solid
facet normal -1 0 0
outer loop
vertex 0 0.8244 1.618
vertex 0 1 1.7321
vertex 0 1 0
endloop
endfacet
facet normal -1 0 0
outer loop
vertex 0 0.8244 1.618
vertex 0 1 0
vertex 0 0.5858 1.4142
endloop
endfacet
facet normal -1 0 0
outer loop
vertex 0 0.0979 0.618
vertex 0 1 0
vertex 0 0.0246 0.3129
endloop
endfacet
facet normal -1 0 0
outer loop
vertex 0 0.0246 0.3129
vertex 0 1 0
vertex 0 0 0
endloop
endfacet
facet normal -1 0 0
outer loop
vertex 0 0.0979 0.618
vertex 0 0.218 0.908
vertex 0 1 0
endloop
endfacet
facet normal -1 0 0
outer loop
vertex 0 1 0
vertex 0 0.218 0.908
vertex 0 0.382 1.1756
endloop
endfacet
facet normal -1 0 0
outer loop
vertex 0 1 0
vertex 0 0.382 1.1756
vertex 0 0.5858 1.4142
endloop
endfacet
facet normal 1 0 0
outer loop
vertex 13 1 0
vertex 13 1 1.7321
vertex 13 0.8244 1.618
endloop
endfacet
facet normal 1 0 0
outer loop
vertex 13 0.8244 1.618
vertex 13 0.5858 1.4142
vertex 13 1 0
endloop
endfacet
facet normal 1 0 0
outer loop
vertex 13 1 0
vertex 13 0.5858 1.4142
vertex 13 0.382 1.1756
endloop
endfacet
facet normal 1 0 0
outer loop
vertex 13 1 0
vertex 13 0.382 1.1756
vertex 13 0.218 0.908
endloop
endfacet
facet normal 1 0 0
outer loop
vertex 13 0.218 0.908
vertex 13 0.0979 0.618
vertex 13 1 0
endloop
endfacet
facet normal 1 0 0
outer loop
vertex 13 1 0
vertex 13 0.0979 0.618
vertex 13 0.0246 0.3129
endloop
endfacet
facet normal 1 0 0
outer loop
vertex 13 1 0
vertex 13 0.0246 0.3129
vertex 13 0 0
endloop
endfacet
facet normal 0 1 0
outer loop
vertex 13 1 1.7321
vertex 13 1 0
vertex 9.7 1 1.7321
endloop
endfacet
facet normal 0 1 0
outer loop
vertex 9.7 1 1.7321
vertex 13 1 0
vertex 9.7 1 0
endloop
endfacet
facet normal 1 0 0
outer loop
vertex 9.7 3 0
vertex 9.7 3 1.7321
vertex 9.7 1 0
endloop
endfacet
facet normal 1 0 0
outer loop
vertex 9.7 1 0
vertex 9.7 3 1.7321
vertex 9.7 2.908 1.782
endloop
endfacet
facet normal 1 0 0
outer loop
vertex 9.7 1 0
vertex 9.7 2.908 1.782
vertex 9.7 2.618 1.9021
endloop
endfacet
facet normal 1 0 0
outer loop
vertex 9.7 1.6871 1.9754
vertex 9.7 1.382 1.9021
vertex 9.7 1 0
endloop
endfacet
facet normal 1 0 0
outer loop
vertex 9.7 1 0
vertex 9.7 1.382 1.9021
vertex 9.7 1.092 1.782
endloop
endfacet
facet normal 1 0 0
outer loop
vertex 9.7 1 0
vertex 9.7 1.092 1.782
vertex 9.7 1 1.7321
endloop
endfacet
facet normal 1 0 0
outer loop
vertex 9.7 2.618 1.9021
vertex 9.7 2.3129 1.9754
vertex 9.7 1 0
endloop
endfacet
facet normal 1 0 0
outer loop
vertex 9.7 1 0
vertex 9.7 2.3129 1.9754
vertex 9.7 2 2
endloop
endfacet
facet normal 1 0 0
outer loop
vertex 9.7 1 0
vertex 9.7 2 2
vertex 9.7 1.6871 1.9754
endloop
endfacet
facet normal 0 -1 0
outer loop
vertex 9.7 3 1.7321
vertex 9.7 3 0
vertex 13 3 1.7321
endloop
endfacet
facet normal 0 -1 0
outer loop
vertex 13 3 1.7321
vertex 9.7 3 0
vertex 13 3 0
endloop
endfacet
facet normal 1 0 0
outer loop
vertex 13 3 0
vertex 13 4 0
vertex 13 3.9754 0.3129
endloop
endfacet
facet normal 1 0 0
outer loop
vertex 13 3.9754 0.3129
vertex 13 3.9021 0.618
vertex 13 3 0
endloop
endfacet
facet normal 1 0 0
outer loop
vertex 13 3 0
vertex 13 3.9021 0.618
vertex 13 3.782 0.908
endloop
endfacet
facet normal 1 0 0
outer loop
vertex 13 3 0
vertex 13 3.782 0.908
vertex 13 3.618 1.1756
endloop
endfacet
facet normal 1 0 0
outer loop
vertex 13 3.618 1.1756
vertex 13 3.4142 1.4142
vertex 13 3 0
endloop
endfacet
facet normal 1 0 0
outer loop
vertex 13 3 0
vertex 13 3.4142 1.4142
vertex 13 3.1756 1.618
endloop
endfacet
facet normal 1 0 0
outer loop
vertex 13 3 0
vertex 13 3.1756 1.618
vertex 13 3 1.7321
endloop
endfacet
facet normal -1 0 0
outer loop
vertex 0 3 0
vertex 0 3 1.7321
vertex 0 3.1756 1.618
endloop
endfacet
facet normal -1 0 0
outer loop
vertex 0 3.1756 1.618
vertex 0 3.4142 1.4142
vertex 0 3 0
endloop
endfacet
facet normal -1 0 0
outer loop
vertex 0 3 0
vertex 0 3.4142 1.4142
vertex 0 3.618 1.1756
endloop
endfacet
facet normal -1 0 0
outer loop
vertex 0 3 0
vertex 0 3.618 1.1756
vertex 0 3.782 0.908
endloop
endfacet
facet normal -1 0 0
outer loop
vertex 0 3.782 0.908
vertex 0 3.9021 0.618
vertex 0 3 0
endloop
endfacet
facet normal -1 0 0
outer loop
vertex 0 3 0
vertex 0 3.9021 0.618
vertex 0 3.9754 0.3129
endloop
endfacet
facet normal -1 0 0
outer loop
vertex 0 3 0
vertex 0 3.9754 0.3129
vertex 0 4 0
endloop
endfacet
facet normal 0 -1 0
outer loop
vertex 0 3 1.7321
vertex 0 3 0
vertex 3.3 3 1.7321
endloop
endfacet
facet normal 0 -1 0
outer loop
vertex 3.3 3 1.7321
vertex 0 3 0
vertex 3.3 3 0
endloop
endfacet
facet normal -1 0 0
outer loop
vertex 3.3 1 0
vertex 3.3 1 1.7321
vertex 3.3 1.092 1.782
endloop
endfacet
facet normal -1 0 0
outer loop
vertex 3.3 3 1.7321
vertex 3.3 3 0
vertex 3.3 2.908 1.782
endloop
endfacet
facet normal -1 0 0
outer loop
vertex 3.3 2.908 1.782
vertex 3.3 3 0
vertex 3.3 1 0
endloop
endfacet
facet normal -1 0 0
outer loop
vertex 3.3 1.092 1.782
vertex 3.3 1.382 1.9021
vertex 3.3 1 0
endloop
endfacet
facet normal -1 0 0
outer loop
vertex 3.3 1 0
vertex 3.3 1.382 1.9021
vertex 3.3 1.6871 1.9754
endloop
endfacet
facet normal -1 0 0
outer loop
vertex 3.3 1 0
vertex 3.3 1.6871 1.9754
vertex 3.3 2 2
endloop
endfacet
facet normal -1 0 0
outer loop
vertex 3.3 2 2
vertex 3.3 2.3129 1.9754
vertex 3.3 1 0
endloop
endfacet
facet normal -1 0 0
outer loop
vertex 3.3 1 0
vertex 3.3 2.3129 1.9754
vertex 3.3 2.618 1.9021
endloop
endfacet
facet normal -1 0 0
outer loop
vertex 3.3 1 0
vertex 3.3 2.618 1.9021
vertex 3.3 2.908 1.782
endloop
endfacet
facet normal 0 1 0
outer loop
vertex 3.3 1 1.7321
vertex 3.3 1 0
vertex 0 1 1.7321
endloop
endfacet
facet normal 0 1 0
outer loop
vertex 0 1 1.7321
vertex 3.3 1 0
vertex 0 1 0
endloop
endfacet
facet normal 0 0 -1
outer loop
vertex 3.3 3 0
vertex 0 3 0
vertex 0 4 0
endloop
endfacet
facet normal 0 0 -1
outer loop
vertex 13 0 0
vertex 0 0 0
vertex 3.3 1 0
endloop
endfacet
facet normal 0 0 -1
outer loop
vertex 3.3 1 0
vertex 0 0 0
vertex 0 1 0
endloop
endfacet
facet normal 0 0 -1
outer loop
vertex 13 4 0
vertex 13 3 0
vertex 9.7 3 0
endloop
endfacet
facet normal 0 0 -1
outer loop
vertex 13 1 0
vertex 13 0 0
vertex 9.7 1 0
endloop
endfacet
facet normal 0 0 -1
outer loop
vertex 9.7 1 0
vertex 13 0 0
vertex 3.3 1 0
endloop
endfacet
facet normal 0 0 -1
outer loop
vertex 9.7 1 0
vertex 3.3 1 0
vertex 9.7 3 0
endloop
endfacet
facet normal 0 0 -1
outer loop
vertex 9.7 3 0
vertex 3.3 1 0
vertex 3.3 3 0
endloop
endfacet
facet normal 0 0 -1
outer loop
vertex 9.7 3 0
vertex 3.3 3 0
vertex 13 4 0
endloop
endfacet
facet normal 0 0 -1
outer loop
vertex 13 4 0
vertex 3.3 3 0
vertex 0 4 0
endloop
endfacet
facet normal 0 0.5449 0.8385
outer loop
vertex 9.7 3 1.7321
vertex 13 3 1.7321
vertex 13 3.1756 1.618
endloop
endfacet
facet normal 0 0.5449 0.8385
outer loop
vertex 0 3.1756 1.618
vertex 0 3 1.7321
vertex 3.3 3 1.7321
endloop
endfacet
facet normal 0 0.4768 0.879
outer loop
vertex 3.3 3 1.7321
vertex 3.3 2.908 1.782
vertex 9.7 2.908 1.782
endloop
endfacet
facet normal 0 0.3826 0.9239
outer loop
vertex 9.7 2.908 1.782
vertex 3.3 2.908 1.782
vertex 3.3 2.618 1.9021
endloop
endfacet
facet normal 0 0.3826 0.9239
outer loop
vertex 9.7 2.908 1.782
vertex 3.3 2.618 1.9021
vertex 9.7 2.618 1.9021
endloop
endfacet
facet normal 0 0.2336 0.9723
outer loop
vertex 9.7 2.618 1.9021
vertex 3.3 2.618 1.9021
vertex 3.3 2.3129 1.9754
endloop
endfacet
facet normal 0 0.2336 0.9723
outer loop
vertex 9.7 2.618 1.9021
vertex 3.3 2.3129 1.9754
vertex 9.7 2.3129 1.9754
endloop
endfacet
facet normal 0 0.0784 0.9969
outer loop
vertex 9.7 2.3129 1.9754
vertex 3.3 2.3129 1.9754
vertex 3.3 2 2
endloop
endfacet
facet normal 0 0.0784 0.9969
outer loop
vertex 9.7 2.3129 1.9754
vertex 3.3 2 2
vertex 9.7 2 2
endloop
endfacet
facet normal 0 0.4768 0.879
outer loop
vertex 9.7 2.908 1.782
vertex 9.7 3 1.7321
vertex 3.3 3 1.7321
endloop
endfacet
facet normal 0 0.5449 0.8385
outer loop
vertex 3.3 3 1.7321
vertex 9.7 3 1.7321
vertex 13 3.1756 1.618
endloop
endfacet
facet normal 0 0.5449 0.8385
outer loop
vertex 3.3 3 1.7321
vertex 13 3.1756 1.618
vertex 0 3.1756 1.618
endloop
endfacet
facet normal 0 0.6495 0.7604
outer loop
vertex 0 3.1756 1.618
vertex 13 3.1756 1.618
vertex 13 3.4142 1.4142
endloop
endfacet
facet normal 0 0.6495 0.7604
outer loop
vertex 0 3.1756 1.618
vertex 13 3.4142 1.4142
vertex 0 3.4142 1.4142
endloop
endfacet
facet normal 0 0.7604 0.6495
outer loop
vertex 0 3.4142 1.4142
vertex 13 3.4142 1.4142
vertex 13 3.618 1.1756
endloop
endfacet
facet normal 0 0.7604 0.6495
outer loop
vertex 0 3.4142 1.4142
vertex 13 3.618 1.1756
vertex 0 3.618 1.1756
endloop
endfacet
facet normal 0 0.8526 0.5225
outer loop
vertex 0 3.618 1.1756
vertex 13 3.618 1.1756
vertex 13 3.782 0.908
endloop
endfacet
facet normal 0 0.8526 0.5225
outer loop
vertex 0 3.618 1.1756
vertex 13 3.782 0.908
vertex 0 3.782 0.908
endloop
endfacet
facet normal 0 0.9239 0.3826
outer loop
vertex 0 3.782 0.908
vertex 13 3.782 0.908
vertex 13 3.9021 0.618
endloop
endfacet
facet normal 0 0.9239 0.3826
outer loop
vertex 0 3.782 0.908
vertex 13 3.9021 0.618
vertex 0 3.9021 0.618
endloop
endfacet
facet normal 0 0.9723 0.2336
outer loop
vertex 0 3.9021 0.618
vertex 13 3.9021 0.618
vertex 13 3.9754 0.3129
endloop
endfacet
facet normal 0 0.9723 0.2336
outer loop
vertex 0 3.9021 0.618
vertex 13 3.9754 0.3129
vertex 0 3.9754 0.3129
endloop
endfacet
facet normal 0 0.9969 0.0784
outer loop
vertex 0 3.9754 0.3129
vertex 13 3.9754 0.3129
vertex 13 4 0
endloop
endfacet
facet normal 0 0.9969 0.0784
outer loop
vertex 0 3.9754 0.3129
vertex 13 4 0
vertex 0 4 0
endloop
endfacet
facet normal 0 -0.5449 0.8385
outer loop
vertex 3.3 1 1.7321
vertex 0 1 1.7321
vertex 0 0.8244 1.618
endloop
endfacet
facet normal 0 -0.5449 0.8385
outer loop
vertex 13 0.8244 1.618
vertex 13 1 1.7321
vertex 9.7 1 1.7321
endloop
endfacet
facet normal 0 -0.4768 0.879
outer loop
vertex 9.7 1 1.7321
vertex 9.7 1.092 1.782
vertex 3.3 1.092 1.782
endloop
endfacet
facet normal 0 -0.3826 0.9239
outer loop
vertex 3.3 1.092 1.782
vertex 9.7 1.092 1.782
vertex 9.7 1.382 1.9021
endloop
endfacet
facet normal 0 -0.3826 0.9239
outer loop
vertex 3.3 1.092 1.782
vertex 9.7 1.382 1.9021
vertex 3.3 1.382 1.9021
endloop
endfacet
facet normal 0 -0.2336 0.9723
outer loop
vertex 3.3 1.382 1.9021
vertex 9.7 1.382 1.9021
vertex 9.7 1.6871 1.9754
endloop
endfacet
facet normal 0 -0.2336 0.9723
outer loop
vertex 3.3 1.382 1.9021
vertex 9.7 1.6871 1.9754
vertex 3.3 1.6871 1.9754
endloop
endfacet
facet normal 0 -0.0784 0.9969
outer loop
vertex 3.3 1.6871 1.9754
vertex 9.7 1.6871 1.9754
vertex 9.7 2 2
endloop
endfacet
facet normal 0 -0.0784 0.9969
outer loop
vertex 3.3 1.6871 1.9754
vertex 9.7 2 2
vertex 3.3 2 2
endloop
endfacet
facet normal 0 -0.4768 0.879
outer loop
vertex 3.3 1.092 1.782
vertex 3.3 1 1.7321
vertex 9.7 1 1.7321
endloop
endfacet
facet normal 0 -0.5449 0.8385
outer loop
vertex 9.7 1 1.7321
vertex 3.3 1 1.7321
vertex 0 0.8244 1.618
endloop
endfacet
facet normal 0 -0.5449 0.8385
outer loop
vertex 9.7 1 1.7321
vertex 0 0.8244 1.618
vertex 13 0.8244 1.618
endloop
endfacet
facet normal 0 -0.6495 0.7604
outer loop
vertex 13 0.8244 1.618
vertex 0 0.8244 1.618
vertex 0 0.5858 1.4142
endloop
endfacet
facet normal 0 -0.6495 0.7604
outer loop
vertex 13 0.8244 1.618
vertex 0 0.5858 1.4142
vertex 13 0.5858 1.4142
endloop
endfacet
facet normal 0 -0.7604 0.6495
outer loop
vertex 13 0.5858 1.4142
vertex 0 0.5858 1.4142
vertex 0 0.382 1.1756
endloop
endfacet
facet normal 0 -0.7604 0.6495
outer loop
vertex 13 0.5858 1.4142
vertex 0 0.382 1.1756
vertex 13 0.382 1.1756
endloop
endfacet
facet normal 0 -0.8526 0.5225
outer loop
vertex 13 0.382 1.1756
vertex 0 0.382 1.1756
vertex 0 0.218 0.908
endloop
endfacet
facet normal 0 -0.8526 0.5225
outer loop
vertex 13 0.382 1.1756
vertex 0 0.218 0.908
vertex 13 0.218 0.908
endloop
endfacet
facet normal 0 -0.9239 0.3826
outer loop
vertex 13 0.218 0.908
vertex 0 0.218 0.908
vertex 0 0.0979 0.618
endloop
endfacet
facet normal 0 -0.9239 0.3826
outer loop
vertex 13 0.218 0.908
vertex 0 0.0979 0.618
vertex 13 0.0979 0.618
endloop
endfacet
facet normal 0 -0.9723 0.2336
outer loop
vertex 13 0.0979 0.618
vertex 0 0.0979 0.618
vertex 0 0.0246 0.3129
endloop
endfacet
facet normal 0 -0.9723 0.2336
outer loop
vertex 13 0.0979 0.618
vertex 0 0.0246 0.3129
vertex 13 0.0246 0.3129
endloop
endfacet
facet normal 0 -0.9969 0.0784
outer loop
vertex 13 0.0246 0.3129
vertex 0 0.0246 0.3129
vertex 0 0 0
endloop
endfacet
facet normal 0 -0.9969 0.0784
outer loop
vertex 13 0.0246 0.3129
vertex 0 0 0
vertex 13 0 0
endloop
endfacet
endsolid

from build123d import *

# Parameters (mm, degrees)
BOSS_EXTRUDE1_DEPTH = 2
FILLET1_R           = 2


with BuildPart() as part:
    # Sketch1 → Boss-Extrude1 (new body)
    with BuildSketch(Plane.XY):
        Polygon((0, 0), (13, 0), (13, 1), (9.7, 1), (9.7, 3), (13, 3), (13, 4), (0, 4), (0, 3), (3.3, 3), (3.3, 1), (0, 1), align=None)
    extrude(amount=BOSS_EXTRUDE1_DEPTH)

    # Fillet1
    fillet1_edges = [part.edges().sort_by_distance(p)[0] for p in [
        (6.5, 0, 2),
        (6.5, 4, 2),
    ]]
    fillet(fillet1_edges, radius=FILLET1_R - 0.0001)  # a hair under: the kernel refuses the full size


solid = part.part
